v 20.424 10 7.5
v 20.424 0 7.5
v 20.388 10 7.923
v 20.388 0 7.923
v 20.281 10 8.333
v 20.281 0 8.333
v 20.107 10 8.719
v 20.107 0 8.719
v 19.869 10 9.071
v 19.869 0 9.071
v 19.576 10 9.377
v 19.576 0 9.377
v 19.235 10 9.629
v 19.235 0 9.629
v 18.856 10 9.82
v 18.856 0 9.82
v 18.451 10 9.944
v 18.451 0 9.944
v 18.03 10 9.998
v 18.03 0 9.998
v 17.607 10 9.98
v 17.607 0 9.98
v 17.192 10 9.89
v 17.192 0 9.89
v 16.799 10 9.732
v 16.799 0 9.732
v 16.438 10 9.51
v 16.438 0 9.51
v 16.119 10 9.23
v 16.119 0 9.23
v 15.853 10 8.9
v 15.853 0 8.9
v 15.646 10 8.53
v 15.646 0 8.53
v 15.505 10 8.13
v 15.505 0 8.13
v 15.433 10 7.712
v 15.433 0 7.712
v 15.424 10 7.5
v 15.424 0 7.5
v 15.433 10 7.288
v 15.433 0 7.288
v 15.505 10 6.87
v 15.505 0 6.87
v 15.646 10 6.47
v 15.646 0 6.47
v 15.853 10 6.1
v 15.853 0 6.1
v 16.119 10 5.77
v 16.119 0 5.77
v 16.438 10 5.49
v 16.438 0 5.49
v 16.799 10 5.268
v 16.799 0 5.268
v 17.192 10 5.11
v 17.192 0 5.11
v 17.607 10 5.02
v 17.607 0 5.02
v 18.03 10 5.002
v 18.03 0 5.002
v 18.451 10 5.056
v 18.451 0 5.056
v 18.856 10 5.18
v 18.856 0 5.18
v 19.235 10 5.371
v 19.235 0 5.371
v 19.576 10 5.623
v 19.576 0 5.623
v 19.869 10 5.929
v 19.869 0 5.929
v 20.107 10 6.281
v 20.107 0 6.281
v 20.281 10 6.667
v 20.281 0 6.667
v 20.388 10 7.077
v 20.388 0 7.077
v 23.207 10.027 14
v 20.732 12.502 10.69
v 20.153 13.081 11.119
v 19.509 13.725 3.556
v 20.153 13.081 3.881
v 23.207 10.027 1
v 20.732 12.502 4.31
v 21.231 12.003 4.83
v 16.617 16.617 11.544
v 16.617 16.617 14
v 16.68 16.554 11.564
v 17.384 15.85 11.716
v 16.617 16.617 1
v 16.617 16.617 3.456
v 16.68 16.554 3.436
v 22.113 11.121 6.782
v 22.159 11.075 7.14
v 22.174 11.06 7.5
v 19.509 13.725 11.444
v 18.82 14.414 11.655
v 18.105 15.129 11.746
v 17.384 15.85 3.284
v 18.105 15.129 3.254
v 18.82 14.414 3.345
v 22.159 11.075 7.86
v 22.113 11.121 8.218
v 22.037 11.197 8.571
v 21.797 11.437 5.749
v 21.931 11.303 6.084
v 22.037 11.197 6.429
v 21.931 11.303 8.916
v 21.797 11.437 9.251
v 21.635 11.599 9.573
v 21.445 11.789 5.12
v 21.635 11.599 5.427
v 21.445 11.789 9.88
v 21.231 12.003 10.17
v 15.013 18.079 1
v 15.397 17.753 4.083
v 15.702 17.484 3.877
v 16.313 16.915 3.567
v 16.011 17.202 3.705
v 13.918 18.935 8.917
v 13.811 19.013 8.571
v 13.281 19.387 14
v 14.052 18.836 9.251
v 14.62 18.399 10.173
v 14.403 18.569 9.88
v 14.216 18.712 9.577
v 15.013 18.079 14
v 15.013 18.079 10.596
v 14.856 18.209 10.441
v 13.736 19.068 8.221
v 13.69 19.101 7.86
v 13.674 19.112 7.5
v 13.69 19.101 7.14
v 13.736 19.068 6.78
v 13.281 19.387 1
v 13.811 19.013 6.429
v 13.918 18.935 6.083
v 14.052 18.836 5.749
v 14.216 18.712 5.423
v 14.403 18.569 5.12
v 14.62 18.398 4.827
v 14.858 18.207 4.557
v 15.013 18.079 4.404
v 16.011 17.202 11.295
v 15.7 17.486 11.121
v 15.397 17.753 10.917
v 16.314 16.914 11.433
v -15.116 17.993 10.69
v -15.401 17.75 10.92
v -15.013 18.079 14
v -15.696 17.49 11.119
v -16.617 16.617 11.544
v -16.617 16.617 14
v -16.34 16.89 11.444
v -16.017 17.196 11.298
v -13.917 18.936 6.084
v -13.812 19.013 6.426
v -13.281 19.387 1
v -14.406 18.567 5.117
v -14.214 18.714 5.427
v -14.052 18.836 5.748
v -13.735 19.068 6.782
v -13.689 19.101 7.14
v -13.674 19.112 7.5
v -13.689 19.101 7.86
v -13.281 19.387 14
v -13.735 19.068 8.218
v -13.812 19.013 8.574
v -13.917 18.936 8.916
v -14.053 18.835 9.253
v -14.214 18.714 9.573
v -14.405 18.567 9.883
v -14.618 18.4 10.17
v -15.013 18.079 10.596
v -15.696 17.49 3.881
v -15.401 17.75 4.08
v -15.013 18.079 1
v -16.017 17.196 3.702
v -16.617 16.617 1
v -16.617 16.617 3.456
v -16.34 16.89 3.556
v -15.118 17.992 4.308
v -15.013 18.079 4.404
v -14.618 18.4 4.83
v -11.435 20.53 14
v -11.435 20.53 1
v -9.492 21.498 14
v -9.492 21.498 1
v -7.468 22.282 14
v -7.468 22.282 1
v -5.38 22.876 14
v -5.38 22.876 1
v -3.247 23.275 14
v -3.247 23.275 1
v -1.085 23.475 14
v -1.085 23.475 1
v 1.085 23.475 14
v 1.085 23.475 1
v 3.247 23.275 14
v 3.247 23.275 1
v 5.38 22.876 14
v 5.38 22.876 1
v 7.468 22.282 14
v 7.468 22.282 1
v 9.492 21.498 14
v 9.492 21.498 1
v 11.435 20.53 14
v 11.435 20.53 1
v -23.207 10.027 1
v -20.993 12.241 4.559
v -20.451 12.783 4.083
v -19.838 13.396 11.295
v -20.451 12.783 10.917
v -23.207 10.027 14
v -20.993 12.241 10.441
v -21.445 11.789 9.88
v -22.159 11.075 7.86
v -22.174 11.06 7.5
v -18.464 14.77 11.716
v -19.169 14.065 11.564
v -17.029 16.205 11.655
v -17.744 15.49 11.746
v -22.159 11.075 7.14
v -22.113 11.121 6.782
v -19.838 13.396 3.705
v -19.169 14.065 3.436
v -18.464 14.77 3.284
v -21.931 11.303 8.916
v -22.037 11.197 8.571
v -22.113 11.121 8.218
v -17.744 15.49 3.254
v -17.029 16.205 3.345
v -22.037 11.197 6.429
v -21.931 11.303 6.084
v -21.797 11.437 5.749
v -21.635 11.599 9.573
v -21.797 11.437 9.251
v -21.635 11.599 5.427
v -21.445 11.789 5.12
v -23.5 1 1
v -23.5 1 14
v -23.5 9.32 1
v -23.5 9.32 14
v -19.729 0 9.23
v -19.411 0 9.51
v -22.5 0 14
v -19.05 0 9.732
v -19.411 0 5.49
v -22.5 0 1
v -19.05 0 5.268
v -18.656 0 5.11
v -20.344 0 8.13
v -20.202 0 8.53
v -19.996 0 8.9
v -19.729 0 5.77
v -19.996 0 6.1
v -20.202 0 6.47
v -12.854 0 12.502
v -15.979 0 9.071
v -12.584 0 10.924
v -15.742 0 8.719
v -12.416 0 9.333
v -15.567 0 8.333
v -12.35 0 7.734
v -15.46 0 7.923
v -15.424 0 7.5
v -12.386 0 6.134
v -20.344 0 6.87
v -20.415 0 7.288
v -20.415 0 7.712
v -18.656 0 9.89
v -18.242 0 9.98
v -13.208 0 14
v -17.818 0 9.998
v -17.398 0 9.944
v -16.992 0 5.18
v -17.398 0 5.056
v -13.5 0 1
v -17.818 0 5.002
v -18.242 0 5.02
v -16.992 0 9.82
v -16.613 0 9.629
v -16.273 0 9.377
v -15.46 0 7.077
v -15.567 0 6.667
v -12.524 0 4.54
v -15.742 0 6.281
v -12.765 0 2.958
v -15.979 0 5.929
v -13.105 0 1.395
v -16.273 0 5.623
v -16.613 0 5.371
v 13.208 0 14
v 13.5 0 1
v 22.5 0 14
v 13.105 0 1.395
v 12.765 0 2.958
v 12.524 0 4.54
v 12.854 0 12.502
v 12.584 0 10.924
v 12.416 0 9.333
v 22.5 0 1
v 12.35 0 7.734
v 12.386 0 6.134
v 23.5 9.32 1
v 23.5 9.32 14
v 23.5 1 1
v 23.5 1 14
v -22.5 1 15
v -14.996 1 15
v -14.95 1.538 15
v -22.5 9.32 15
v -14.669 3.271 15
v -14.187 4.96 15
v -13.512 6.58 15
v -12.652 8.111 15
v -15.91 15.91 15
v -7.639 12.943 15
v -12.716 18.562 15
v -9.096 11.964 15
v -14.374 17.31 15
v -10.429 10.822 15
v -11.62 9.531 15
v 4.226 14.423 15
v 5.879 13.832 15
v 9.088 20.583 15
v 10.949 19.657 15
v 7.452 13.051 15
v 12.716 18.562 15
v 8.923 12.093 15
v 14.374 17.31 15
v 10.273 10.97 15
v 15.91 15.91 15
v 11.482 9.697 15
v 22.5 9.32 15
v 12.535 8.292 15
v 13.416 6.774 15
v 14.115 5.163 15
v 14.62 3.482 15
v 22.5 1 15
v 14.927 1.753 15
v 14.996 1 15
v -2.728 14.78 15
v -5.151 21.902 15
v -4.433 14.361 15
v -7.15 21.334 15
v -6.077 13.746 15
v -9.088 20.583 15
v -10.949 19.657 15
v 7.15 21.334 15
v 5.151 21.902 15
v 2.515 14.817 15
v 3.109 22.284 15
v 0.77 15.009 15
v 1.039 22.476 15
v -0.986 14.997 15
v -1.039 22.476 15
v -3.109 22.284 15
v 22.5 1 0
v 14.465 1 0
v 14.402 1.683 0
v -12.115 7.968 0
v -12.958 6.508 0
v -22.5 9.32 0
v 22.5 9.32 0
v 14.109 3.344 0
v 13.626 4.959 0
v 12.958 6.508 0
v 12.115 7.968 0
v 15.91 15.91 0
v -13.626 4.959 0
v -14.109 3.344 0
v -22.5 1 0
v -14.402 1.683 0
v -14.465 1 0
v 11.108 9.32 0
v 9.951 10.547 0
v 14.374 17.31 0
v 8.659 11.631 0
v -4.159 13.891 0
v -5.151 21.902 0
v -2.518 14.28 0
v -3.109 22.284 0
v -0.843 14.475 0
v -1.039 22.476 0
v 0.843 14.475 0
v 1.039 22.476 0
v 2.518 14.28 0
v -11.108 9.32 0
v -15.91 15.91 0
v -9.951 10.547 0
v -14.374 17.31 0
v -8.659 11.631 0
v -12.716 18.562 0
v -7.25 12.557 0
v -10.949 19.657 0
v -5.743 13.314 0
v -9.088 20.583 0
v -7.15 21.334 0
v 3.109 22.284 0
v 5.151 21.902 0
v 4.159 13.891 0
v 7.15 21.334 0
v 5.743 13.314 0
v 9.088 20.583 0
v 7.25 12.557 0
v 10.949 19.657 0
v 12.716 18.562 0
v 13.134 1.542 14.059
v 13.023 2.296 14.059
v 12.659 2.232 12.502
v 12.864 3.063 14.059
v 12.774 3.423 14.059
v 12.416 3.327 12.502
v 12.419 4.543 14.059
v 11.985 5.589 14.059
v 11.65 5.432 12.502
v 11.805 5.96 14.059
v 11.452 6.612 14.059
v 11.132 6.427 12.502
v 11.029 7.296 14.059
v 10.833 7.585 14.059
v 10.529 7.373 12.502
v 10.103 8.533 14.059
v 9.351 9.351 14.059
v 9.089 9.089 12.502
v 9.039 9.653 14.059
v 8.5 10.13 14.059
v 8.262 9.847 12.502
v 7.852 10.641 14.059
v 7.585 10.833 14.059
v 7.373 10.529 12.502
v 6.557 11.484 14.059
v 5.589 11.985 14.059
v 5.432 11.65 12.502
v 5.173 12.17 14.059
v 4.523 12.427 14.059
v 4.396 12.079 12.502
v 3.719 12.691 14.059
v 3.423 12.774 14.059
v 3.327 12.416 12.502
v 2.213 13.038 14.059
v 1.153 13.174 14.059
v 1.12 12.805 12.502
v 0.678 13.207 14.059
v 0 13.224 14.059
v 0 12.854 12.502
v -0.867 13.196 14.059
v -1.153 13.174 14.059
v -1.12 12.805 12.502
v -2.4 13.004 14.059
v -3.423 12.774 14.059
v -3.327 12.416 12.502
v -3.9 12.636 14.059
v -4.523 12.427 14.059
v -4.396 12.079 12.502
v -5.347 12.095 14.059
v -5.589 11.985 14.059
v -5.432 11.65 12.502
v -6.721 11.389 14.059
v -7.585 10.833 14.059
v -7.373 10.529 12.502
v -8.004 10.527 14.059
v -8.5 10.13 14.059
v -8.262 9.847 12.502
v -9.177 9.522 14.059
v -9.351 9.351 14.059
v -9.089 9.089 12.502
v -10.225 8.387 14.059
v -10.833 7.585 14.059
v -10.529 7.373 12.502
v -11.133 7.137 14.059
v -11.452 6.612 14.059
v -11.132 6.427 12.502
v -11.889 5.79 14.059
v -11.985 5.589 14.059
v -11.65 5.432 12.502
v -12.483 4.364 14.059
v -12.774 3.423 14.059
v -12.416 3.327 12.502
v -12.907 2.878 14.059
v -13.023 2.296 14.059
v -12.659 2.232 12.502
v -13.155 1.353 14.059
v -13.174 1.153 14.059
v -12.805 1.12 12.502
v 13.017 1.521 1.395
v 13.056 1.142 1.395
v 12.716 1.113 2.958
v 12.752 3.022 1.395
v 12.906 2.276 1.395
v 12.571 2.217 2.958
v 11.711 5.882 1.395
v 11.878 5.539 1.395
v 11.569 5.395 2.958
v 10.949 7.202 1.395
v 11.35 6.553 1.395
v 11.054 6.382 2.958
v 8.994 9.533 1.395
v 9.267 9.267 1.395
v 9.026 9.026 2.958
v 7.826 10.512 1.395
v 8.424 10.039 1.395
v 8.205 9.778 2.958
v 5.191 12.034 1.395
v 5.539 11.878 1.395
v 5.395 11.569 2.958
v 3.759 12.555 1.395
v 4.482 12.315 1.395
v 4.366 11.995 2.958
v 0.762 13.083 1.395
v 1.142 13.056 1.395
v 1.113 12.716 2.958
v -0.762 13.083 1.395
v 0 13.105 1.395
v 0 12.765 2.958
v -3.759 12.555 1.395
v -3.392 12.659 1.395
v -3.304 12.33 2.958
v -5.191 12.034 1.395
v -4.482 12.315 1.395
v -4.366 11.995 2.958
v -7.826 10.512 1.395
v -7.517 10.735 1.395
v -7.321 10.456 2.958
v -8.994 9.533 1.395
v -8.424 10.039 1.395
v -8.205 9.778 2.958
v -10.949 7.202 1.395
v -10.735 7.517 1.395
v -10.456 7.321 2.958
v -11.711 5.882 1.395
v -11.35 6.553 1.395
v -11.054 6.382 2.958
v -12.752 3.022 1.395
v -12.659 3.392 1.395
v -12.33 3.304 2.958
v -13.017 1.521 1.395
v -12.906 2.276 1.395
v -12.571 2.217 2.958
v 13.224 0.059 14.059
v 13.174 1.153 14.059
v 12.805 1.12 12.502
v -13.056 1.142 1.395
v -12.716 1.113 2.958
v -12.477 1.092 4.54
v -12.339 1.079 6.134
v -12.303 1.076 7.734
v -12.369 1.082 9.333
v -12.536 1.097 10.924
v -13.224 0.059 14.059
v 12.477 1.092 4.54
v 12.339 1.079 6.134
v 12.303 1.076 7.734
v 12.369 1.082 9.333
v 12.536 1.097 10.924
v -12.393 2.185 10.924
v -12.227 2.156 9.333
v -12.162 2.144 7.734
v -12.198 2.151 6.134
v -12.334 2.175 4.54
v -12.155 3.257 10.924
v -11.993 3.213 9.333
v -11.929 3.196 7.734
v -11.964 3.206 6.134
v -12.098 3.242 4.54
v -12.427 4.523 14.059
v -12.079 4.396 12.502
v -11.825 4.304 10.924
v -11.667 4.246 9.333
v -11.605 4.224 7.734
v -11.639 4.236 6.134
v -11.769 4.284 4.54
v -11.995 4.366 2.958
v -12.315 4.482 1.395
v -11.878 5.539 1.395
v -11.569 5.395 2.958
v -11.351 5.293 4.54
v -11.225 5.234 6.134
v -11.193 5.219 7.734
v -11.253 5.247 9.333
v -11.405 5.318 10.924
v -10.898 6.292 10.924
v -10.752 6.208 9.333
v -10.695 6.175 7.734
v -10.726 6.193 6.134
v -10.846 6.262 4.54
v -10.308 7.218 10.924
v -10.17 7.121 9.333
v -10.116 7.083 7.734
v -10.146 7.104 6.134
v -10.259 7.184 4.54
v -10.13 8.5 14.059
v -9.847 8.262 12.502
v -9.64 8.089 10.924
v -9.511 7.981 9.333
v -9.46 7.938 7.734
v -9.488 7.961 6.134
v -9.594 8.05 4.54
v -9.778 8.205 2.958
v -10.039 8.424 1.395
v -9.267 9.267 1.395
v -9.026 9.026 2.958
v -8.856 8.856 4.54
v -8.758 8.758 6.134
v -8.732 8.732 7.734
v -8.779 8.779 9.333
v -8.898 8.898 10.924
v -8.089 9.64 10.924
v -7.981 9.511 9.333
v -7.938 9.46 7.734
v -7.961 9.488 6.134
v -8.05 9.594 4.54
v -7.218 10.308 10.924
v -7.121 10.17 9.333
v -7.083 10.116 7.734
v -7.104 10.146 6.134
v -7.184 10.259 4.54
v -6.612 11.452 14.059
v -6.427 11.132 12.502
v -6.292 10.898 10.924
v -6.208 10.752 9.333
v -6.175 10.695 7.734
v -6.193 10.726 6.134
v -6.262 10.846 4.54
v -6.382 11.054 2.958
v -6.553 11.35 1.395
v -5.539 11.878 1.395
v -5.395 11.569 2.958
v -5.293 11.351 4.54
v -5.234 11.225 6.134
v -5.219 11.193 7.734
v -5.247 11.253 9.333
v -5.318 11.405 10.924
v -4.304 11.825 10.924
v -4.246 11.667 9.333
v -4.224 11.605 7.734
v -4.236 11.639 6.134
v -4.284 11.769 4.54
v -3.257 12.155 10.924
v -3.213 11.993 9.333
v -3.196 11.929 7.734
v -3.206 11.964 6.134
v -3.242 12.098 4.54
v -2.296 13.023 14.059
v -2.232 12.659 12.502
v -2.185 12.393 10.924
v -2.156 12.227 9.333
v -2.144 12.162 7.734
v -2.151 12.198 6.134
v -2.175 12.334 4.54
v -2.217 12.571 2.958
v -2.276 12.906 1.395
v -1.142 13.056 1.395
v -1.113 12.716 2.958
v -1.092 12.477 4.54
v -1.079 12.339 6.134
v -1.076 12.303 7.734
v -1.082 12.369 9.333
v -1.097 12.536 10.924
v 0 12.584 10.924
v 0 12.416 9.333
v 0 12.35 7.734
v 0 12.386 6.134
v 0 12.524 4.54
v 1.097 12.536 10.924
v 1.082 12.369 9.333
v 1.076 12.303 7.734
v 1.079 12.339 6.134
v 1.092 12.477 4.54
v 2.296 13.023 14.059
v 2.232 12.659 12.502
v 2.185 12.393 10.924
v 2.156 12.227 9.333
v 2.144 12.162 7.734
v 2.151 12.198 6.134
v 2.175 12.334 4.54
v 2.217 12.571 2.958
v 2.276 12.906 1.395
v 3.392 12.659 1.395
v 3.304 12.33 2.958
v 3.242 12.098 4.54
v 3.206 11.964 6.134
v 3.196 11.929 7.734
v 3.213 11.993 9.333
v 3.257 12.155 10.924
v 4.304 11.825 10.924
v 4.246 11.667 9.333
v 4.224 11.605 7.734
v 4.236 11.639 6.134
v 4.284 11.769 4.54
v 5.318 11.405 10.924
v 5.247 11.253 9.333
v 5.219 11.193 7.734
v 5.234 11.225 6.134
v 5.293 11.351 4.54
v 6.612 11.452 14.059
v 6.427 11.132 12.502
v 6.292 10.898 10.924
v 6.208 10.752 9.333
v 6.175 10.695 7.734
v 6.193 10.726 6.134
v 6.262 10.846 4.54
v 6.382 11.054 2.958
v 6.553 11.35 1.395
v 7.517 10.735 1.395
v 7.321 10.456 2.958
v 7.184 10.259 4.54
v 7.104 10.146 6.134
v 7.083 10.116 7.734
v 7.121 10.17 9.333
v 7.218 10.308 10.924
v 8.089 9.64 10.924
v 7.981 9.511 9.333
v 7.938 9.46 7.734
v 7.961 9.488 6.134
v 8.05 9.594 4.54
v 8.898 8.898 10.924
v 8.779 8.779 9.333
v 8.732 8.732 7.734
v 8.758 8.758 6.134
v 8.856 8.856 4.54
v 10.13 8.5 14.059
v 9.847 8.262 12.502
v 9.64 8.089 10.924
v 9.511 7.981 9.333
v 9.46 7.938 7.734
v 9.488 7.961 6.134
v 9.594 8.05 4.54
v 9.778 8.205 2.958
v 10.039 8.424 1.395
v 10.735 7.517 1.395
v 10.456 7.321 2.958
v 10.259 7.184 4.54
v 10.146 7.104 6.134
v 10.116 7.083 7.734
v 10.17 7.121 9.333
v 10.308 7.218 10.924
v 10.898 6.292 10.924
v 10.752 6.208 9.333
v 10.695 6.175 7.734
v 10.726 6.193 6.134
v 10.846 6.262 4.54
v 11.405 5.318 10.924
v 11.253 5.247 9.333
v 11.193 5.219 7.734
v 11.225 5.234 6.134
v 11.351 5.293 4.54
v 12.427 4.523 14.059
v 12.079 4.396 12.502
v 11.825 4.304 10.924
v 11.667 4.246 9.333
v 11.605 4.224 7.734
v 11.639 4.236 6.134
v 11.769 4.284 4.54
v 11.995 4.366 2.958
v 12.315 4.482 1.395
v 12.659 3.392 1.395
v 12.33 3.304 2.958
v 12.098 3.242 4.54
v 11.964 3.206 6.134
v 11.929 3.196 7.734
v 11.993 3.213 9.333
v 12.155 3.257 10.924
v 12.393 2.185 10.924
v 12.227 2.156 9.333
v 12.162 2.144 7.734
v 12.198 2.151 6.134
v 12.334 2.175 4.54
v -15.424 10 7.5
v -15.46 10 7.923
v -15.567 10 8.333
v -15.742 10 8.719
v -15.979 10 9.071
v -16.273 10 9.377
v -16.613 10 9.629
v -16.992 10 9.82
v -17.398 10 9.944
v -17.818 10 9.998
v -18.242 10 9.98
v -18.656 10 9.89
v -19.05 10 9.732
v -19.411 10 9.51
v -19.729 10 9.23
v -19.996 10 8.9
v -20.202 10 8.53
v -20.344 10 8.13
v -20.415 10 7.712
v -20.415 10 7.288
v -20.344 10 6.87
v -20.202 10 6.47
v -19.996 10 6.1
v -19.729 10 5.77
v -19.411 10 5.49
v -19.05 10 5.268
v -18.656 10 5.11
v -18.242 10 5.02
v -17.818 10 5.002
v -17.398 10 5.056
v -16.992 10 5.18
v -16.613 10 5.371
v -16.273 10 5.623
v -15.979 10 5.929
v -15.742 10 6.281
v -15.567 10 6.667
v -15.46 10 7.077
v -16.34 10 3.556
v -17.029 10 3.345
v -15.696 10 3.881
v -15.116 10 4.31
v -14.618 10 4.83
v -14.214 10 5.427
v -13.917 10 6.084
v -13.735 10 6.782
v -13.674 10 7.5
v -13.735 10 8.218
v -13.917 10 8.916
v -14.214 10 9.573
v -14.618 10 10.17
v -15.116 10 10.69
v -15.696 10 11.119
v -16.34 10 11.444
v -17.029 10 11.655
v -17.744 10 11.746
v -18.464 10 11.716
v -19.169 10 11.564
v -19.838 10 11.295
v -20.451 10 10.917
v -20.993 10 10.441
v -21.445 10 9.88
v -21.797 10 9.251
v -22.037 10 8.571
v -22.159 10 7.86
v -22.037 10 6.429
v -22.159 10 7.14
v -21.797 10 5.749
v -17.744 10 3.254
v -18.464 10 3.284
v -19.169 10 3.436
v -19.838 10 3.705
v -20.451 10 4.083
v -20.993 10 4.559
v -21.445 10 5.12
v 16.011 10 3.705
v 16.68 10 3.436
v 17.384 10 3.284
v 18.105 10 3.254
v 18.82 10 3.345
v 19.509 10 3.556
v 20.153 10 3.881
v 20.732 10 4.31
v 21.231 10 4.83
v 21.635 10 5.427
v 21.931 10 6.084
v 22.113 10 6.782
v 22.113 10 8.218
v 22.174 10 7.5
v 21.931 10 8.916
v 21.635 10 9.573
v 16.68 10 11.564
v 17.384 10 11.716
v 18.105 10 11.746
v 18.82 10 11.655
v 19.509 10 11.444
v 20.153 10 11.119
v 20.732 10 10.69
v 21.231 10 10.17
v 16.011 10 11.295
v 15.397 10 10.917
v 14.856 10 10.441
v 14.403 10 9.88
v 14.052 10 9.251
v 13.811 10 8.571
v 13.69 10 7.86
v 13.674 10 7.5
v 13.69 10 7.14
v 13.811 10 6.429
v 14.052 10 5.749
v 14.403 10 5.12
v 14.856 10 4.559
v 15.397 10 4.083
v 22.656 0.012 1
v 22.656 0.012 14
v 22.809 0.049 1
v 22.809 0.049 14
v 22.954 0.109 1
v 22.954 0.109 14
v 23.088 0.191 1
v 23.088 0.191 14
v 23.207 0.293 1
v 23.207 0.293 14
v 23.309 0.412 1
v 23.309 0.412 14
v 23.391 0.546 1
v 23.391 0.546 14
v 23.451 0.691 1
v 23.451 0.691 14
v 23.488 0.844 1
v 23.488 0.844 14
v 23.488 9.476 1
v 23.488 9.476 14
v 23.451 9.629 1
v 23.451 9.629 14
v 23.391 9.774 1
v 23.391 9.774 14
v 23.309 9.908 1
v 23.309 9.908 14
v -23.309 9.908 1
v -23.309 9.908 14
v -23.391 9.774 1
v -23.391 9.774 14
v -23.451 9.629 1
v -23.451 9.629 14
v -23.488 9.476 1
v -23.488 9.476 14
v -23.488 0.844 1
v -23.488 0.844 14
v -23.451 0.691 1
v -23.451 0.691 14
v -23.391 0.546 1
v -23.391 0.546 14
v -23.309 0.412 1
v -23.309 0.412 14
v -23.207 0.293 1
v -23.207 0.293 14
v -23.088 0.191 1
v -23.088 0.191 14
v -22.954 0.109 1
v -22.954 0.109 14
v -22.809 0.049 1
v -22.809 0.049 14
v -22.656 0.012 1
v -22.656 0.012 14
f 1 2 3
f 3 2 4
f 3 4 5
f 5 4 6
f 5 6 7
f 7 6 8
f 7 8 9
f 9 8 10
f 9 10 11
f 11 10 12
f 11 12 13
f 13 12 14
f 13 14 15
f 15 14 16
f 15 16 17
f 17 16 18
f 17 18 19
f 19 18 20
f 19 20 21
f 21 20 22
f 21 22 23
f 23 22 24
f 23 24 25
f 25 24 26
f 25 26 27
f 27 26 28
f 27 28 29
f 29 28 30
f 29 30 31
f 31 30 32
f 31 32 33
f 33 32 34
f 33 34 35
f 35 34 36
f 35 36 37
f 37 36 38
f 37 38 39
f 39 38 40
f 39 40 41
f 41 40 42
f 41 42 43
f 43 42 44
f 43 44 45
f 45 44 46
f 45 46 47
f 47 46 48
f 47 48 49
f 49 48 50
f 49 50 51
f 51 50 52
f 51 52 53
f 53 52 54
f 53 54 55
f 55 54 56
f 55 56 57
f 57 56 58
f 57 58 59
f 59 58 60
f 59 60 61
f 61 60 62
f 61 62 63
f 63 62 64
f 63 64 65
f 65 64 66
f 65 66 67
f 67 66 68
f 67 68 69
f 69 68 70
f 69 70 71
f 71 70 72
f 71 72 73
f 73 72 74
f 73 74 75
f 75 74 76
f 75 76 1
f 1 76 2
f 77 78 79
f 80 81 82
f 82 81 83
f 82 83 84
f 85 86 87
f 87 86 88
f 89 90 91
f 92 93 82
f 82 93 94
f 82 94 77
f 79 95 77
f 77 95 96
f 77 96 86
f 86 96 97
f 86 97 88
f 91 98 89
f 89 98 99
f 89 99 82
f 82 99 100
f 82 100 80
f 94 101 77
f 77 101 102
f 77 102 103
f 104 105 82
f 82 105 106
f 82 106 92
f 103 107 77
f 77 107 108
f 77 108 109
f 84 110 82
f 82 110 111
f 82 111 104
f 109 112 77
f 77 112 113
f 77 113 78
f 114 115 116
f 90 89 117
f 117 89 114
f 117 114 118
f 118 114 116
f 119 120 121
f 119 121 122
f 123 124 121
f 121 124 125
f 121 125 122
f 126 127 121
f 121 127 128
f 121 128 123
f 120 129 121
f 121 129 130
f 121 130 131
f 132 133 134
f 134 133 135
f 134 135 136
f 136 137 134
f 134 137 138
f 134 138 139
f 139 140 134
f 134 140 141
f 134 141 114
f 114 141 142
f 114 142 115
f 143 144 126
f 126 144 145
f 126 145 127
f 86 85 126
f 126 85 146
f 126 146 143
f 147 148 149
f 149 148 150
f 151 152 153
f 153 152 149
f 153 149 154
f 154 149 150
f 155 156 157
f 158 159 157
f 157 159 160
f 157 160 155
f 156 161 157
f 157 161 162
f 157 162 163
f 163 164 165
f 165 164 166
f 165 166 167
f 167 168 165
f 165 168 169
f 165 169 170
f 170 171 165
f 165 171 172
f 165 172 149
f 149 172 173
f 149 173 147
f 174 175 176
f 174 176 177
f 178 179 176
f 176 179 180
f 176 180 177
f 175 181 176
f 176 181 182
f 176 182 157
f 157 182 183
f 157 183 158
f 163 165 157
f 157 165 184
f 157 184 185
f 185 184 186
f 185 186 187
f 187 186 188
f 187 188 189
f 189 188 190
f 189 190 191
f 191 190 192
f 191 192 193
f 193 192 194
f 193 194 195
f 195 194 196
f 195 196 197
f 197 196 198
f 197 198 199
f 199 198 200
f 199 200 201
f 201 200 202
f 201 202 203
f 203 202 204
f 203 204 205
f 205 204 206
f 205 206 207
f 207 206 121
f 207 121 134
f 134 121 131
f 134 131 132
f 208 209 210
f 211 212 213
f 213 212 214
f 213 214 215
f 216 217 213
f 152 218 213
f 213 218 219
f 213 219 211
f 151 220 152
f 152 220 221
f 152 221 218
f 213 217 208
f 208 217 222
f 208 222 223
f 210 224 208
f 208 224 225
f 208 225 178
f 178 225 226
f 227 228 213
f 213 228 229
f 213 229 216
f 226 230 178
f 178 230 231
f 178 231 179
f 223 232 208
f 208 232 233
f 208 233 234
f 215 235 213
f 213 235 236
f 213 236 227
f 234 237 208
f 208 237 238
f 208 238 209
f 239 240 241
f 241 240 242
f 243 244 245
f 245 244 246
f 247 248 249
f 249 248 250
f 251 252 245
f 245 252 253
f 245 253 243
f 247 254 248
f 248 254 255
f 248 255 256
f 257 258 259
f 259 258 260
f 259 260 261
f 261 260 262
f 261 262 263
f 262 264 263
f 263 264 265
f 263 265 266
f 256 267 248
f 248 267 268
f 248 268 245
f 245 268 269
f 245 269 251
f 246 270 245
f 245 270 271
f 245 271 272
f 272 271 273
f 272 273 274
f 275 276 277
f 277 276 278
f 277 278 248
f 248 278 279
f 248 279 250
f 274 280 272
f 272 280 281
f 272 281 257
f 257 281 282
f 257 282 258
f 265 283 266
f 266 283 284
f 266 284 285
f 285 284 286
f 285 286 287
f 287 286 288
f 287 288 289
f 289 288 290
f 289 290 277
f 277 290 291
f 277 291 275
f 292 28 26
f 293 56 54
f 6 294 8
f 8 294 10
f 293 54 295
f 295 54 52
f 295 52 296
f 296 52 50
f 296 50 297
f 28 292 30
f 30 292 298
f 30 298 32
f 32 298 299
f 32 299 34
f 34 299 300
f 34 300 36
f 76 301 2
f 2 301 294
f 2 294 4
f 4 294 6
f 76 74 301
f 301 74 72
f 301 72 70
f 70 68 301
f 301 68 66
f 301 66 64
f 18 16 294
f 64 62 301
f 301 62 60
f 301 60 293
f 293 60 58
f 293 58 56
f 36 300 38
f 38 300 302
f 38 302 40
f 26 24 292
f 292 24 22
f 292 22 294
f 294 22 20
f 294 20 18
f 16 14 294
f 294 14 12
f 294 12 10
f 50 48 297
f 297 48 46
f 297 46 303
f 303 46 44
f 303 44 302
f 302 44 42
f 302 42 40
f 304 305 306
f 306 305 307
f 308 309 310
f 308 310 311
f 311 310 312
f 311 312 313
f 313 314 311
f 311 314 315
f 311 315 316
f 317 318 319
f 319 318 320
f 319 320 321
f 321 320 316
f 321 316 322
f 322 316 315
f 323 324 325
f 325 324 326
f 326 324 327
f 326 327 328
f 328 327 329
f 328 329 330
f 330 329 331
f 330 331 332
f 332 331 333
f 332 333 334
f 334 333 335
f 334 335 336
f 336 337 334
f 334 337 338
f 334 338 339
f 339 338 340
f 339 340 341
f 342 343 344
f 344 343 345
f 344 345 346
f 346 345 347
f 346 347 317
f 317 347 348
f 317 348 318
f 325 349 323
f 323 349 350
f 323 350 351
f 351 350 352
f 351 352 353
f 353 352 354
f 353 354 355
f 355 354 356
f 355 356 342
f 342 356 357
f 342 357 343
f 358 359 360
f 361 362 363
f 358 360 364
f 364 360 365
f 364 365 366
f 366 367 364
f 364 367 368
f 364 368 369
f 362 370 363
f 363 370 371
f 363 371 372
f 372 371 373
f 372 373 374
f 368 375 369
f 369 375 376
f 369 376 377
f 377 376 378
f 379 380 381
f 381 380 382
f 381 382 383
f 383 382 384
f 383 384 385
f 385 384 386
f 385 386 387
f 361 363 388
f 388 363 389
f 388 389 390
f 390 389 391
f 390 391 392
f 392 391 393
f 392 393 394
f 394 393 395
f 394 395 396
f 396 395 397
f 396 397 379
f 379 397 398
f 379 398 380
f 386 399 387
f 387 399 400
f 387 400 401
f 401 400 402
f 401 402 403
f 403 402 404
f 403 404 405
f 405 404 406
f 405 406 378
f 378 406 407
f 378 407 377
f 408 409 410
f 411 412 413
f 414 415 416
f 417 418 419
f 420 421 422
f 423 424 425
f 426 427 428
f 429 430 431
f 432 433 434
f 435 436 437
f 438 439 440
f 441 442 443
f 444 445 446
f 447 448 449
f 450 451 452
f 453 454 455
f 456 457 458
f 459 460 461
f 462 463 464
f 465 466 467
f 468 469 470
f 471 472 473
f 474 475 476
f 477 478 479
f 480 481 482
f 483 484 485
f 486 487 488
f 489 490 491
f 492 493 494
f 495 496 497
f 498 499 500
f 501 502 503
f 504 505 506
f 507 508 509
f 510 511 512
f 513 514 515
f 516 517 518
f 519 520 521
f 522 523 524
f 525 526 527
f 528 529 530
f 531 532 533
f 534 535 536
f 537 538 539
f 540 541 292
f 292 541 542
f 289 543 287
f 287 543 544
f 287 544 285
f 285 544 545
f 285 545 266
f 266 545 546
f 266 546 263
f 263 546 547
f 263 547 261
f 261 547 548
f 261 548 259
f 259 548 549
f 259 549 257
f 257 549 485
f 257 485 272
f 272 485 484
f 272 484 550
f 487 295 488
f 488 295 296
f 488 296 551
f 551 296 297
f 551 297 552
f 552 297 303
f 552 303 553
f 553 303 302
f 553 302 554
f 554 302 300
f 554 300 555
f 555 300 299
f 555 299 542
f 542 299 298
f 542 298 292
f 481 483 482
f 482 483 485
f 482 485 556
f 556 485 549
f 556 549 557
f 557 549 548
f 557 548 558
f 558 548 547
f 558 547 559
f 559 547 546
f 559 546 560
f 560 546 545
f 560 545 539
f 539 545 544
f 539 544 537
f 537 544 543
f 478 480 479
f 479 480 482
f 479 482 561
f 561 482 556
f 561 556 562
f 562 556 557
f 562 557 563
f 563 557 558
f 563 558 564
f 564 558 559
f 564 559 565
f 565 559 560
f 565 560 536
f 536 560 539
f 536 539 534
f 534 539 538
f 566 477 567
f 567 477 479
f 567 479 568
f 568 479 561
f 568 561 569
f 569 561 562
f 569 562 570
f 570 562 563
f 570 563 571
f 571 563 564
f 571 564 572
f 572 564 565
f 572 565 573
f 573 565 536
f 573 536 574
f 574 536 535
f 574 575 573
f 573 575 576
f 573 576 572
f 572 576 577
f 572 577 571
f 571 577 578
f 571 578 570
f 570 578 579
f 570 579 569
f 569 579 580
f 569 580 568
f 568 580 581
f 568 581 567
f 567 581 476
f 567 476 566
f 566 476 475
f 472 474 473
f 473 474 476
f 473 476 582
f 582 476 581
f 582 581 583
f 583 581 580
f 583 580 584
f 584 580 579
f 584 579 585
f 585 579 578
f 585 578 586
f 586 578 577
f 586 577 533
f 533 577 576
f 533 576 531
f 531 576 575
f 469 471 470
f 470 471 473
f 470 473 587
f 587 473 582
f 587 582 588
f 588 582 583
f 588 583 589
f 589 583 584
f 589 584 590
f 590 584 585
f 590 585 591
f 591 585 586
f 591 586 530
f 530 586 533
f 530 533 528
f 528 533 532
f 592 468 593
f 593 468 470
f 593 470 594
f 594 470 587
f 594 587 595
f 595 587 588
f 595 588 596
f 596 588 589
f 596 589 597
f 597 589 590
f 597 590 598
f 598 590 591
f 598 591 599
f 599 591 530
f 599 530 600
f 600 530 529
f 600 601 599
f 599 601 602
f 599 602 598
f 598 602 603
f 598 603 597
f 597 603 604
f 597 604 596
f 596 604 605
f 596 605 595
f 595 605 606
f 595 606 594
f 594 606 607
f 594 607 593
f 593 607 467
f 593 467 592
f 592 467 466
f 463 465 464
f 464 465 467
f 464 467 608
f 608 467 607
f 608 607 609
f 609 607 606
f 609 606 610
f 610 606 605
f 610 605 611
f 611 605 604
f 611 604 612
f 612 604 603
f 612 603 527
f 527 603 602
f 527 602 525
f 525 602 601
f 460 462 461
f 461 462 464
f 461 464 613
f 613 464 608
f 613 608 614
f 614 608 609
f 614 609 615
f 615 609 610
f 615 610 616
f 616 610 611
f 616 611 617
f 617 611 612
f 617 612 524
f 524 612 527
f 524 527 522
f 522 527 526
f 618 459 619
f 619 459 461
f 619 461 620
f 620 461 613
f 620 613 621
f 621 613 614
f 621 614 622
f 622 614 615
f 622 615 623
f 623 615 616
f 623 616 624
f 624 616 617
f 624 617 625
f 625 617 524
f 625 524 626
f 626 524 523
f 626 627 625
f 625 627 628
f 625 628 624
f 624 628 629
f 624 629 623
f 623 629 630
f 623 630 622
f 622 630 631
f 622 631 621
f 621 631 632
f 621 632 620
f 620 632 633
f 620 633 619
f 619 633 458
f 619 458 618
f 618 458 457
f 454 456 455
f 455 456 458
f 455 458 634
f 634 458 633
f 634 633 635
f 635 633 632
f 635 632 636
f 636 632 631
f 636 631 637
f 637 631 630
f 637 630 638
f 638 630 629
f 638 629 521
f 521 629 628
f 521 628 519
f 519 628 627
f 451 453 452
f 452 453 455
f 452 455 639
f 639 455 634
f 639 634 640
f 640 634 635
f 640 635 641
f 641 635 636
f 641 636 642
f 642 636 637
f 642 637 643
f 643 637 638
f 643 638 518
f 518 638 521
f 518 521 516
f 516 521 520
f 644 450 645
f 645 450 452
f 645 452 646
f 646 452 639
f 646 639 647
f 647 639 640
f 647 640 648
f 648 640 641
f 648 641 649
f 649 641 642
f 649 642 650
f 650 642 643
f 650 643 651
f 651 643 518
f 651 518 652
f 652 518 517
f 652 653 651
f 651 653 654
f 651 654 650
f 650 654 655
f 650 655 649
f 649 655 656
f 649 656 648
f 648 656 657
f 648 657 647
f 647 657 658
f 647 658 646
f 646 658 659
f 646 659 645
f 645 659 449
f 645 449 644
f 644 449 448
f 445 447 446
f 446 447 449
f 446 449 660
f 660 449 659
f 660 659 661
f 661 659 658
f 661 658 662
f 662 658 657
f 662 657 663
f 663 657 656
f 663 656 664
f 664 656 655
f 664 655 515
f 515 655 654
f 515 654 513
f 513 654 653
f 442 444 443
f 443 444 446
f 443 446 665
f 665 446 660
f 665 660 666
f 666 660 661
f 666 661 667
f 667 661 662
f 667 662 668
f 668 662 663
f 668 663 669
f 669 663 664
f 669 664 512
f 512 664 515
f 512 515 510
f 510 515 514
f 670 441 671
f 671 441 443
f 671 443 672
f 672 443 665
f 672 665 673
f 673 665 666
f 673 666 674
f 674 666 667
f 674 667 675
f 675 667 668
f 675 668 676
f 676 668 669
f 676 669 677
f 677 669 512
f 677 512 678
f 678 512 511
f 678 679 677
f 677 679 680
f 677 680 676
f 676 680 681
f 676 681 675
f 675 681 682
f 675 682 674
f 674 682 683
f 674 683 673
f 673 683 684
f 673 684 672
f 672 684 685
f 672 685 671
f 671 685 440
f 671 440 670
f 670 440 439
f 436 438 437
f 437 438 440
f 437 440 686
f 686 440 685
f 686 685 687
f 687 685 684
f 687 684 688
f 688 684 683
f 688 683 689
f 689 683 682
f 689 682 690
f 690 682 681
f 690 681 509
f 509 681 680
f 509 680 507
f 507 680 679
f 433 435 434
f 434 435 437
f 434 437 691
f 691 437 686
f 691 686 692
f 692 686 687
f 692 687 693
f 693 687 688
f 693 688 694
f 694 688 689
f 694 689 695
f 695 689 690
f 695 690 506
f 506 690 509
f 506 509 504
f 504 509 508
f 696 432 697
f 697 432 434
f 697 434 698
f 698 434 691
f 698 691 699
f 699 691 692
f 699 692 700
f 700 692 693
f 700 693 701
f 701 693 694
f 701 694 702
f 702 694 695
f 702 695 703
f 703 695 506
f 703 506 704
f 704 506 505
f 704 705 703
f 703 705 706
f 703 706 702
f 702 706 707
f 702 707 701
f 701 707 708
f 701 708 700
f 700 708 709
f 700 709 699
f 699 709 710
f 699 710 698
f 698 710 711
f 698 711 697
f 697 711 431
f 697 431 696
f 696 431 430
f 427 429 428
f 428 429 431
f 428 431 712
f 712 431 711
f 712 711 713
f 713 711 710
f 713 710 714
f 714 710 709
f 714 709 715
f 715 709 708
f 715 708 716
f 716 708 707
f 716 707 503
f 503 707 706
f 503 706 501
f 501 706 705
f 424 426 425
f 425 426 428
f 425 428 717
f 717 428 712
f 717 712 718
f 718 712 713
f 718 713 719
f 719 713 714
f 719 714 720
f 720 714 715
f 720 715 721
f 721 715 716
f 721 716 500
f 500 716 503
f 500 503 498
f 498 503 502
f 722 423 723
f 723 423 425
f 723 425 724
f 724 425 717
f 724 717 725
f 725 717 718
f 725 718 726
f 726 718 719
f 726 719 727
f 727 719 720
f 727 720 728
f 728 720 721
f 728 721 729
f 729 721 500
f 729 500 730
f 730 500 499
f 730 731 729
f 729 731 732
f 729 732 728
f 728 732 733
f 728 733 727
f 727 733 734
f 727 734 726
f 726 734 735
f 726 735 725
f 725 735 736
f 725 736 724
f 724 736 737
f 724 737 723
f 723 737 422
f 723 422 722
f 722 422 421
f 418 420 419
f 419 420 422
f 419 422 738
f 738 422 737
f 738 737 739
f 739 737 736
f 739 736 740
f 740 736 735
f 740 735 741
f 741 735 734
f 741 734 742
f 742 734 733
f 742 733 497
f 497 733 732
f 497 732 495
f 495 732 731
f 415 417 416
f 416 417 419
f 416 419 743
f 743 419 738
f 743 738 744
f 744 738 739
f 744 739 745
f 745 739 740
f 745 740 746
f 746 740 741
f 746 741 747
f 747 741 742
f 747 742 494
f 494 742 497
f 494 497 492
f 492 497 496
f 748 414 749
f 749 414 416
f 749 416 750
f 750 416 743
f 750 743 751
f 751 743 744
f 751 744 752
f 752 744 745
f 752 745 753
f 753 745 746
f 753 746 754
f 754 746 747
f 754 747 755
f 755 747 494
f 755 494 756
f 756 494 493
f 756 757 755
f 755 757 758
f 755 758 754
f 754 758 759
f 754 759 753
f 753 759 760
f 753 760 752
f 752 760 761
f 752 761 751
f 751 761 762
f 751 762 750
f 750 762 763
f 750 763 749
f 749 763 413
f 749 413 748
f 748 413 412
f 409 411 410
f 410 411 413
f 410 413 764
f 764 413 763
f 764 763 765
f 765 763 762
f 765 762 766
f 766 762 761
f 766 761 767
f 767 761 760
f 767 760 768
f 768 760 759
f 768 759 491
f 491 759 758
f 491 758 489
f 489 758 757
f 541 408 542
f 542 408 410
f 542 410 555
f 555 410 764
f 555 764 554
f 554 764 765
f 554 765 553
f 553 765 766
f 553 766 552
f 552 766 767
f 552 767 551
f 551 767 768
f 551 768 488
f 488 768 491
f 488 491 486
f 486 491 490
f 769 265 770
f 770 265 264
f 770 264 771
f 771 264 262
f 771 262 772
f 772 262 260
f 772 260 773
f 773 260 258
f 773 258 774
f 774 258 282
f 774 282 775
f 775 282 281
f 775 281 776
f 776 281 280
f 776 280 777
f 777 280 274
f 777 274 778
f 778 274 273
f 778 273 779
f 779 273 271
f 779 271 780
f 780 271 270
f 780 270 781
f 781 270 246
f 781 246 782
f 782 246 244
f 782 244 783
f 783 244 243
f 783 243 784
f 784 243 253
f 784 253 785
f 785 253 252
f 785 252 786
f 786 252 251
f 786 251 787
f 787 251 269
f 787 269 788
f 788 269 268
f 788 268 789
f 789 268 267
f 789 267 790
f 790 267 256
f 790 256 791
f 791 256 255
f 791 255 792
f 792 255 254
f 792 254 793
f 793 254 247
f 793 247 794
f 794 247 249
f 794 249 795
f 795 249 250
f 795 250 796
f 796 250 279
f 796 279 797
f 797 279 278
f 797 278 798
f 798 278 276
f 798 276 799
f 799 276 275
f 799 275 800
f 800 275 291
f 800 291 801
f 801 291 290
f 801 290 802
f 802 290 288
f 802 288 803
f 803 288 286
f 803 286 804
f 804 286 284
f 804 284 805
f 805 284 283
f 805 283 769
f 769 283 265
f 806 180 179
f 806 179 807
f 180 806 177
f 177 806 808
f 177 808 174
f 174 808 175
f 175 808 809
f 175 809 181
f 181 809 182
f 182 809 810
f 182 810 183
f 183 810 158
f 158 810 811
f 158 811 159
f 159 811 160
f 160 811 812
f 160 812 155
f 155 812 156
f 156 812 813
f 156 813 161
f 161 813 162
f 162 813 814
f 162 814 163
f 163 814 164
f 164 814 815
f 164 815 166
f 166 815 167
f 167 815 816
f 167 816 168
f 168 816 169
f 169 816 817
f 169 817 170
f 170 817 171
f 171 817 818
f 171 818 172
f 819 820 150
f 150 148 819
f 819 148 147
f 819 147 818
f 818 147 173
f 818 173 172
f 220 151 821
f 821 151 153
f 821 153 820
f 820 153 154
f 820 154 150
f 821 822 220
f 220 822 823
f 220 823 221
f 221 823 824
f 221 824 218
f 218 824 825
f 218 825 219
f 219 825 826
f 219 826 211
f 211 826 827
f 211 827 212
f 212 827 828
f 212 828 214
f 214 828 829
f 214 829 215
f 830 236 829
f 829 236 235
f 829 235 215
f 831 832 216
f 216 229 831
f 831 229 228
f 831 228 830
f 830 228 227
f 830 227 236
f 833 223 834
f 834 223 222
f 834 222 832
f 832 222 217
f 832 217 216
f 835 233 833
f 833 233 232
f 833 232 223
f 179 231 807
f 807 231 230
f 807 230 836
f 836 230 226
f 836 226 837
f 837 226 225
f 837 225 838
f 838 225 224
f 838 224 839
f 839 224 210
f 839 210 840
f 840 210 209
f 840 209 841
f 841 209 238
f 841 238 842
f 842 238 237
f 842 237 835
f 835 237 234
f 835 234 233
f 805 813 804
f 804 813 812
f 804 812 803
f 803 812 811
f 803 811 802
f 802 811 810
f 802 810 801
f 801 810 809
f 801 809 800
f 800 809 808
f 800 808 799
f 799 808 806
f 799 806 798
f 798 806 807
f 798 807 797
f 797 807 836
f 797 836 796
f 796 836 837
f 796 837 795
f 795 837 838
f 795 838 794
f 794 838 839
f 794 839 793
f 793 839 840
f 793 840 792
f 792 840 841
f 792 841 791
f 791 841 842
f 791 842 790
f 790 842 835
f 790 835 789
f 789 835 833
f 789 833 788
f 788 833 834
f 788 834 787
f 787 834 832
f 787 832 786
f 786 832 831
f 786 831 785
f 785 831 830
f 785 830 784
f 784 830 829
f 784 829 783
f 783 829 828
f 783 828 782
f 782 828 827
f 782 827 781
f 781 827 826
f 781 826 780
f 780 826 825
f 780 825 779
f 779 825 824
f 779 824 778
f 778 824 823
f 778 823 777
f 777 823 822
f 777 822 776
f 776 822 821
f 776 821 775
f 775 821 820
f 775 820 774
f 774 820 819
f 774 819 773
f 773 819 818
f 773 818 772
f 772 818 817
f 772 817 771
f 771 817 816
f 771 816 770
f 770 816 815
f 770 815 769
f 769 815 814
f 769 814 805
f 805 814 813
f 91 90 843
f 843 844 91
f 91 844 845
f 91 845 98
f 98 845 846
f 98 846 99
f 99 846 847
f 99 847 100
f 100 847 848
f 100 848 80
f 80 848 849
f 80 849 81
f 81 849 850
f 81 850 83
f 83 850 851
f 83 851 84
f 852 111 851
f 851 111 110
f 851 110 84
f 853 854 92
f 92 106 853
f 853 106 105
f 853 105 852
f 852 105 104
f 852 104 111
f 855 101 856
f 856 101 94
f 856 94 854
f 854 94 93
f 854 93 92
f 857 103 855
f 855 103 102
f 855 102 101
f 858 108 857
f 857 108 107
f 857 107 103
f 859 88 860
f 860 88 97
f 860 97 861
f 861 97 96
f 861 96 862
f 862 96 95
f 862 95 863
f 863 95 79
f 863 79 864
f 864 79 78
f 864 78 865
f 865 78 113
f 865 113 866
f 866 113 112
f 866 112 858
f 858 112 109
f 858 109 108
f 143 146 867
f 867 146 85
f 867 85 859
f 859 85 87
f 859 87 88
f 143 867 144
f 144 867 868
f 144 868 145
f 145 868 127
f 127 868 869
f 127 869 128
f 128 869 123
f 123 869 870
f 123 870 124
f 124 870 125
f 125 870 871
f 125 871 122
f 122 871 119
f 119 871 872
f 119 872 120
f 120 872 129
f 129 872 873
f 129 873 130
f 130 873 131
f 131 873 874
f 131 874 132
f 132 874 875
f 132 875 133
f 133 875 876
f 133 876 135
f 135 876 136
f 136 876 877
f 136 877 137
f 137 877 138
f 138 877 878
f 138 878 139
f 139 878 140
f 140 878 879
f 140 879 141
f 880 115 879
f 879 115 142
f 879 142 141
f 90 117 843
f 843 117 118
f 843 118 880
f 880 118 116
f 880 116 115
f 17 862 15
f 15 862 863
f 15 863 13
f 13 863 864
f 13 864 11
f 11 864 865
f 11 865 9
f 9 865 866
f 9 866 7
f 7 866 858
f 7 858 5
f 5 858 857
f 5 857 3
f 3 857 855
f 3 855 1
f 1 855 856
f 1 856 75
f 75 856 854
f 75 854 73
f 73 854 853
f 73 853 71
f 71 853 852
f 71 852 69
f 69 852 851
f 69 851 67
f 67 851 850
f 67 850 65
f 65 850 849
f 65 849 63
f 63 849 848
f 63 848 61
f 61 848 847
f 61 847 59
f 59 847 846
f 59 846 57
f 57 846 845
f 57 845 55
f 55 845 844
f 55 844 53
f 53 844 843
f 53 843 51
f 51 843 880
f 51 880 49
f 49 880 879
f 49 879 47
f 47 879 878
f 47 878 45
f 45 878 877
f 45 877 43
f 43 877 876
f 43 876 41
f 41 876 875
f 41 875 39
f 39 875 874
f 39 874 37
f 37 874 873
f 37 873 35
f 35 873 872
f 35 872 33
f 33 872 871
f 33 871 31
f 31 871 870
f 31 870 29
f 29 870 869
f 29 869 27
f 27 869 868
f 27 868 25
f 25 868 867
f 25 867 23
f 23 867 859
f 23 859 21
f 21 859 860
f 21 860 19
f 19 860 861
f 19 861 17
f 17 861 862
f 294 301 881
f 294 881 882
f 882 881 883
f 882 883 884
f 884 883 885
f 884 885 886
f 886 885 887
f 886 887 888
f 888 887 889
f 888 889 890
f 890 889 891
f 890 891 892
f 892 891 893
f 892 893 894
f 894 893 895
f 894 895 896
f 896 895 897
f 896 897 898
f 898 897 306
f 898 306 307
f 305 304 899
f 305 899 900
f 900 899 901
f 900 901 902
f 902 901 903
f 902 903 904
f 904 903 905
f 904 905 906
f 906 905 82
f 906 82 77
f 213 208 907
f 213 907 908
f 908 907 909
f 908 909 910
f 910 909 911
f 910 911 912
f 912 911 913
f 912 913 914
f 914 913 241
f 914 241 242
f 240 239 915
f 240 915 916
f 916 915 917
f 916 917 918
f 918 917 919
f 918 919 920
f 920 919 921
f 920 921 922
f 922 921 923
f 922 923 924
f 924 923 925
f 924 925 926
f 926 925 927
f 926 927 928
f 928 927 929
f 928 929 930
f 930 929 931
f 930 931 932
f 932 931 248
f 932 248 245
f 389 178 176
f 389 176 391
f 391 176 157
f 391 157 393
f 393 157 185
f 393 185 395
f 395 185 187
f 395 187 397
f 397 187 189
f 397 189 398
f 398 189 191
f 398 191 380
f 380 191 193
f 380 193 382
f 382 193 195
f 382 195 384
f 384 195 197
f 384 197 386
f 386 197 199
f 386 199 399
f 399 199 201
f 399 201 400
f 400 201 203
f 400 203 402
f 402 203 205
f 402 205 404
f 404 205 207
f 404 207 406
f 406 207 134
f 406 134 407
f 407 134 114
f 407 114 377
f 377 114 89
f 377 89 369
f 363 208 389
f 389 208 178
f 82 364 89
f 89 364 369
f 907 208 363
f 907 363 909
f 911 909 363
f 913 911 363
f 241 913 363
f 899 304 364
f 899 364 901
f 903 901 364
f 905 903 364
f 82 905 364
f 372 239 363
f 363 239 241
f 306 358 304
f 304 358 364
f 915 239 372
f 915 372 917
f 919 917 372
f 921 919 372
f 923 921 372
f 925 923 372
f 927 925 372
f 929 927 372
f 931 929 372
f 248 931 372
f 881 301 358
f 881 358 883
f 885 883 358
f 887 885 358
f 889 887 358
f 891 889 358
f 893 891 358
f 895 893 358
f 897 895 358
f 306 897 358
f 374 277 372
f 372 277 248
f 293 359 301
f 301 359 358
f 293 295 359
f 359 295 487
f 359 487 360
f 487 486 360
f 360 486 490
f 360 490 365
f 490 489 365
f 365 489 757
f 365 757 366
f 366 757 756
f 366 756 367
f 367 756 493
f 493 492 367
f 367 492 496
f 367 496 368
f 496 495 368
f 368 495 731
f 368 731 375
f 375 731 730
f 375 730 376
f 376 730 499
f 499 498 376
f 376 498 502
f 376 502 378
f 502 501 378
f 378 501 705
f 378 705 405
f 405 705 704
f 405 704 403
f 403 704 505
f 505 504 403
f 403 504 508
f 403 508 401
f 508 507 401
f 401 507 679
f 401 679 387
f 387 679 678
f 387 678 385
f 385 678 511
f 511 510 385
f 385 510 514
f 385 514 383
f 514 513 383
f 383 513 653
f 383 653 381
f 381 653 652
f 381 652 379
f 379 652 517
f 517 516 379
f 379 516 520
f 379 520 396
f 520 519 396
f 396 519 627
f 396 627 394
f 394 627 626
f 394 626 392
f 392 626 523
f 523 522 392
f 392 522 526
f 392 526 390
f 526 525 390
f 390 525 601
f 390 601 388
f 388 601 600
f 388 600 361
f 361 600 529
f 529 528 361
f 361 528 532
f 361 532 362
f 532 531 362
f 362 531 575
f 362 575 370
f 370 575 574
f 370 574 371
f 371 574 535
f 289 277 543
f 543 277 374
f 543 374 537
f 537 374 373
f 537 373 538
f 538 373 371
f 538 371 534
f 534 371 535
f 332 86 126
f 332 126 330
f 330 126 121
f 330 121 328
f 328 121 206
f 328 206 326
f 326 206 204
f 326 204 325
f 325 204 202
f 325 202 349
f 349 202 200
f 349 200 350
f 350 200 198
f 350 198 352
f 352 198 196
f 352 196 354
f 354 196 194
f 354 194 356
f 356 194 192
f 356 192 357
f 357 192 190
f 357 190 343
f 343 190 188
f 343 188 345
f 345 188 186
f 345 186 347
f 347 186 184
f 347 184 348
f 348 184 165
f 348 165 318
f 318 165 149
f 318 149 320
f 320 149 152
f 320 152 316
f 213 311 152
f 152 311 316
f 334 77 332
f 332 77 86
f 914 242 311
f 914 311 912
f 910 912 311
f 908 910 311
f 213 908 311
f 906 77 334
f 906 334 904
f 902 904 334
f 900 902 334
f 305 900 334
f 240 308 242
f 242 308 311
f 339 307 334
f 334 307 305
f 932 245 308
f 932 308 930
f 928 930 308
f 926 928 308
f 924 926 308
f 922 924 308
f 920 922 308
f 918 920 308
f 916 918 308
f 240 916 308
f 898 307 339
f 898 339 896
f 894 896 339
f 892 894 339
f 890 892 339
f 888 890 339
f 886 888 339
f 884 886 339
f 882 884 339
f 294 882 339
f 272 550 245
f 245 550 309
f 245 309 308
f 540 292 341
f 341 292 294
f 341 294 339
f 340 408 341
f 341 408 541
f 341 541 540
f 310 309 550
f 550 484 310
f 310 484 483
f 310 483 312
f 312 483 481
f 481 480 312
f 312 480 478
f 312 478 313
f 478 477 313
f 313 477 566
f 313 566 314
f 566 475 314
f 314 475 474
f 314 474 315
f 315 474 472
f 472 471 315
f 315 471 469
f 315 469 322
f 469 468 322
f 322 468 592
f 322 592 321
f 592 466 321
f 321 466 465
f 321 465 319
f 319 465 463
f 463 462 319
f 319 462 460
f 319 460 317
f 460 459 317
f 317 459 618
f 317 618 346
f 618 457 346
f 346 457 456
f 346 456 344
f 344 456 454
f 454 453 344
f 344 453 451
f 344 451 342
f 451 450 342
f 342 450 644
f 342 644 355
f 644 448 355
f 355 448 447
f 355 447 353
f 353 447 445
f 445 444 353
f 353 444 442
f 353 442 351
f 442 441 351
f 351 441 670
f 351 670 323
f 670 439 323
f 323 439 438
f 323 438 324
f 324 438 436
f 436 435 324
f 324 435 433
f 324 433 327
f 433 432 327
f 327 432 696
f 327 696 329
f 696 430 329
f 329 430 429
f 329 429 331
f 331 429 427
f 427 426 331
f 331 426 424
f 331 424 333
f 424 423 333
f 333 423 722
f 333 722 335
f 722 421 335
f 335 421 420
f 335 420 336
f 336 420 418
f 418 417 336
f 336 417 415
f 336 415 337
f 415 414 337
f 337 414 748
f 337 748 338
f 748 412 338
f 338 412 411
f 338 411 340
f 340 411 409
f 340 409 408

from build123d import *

# Parameters (mm, degrees)
BOSS_EXTRUDE1_DEPTH = 15
REVOLVE1_ANGLE      = 180
SKETCH3_R           = 2.5
CUT_EXTRUDE1_DEPTH  = 37.462309307
CUT_EXTRUDE2_START  = -10
SKETCH4_R           = 4.25
CUT_EXTRUDE2_DEPTH  = 27.462309413
FILLET1_R           = 1
CHAMFER1_SIZE       = 1.529194148
CHAMFER1_SIZE_2     = 1


with BuildPart() as part:
    # Sketch1 → Boss-Extrude1 (new body)
    with BuildSketch(Plane.XY):
        with BuildLine():
            Line((-13.5, 0), (-23.5, 0))
            Line((-23.5, 0), (-23.5, 9.734018716))
            Line((-23.5, 9.734018716), (-16.617009358, 16.617009358))
            ThreePointArc((-16.617009358, 16.617009358), (0, 23.5), (16.617009358, 16.617009358))
            Line((16.617009358, 16.617009358), (23.5, 9.734018716))
            Line((23.5, 9.734018716), (23.5, 0))
            Line((23.5, 0), (13.5, 0))
            ThreePointArc((13.5, 0), (0, 13.5), (-13.5, 0))
        make_face()
    extrude(amount=BOSS_EXTRUDE1_DEPTH)

    # Sketch2 → Revolve1 (revolve)
    with BuildSketch(Plane.XZ):
        with BuildLine():
            Line((-13.5, 15), (-13.5, 0))
            ThreePointArc((-13.5, 0), (-12.348480035, 7.5), (-13.5, 15))
        make_face()
    revolve(axis=Axis((0, 0, 7.5), (0, 0, -1)), revolution_arc=REVOLVE1_ANGLE)

    # Sketch3 → Cut-Extrude1 (cut, through all)
    with BuildSketch(Plane.XZ):
        with Locations((-17.924240018, 7.5)):
            Circle(SKETCH3_R)
        with Locations(Location((17.924240018, 7.5, 0), (0, 0, 121.526459575))):
            Circle(SKETCH3_R)
    extrude(amount=-CUT_EXTRUDE1_DEPTH, mode=Mode.SUBTRACT)

    # Sketch4 → Cut-Extrude2 (cut, through all)
    with BuildSketch(Plane.XZ.offset(CUT_EXTRUDE2_START)):
        with Locations((-17.924240018, 7.5)):
            Circle(SKETCH4_R)
        with Locations(Location((17.924240018, 7.5, 0), (0, 0, 252.086328454))):
            Circle(SKETCH4_R)
    extrude(amount=-CUT_EXTRUDE2_DEPTH, mode=Mode.SUBTRACT)

    # Fillet1
    fillet1_edges = [part.edges().sort_by_distance(p)[0] for p in [
        (23.5, 9.734018716, 7.5),
        (23.5, 0, 7.5),
        (-23.5, 0, 7.5),
        (-23.5, 9.734018716, 7.5),
    ]]
    fillet(fillet1_edges, radius=FILLET1_R)

    # Chamfer1
    # the kernel refuses this chamfer: 1.529194148, 1 mm, written as the material it takes off along each edge
    with BuildSketch(Plane(origin=(0, 0, 15), x_dir=(0.9571659368895994, -0.2895399268810014, 0), z_dir=(-0.2895399268810014, -0.9571659368895994, 0))) as chamfer1_piece_1:
        with BuildLine():
            Line((13.224132078, -0.941354132), (13.5 + CHAMFER1_SIZE, 0))
            Line((13.5 + CHAMFER1_SIZE, 0), (13.5, 0))
            ThreePointArc((13.5, 0), (13.351499892, -0.489654504), (13.224132078, -0.941354132))
        make_face()
    revolve(axis=Axis((0, 0, 15), (0, 0, 1)), revolution_arc=213.660828251, mode=Mode.SUBTRACT)
    with BuildSketch(Plane(origin=(0, 0, 0), x_dir=(0.9613944909393555, -0.27517382286739694, 0), z_dir=(-0.27517382286739694, -0.9613944909393555, 0))) as chamfer1_piece_2:
        with BuildLine():
            Line((13.5 + CHAMFER1_SIZE_2, 0), (13.105478256, 1.394521744))
            ThreePointArc((13.105478256, 1.394521744), (13.285379501, 0.720089037), (13.5, 0))
            Line((13.5, 0), (13.5 + CHAMFER1_SIZE_2, 0))
        make_face()
    revolve(axis=Axis((0, 0, 0), (0, 0, 1)), revolution_arc=211.944746271, mode=Mode.SUBTRACT)
    # the kernel refuses this chamfer: 1.529194148, 1 mm, written as the material it takes off along each edge
    with BuildSketch(Plane(origin=(-23.207106781, 10.026911935, 0), x_dir=(0.7071067811865477, -0.7071067811865475, 0), z_dir=(0.7071067811865475, 0.7071067811865477, 0)), Plane(origin=(16.617009358, 16.617009358, 0), x_dir=(-0.7071067811865477, -0.7071067811865475, 0), z_dir=(0.7071067811865475, -0.7071067811865477, 0))) as chamfer1_2_piece_1:
        Polygon((CHAMFER1_SIZE_2, 0), (0, -CHAMFER1_SIZE_2), (0, 0), align=None)
    extrude(amount=9.319805153, mode=Mode.SUBTRACT)
    with BuildSketch(Plane(origin=(0, 0, 0), x_dir=(-0.7071067811865478, 0.7071067811865472, 0), z_dir=(-0.7071067811865472, -0.7071067811865478, 0))) as chamfer1_2_piece_2:
        Polygon((23.5 - CHAMFER1_SIZE_2, 0), (23.5, -CHAMFER1_SIZE_2), (23.5, 0), align=None)
    revolve(axis=Axis((0, 0, 0), (0, 0, -1)), revolution_arc=90, mode=Mode.SUBTRACT)
    with BuildSketch(Plane(origin=(-23.207106781, 10.026911935, 15), x_dir=(0.7071067811865477, -0.7071067811865475, 0), z_dir=(0.7071067811865475, 0.7071067811865477, 0)), Plane(origin=(16.617009358, 16.617009358, 15), x_dir=(-0.7071067811865477, -0.7071067811865475, 0), z_dir=(0.7071067811865475, -0.7071067811865477, 0))) as chamfer1_2_piece_3:
        Polygon((CHAMFER1_SIZE_2, 0), (0, CHAMFER1_SIZE_2), (0, 0), align=None)
    extrude(amount=9.319805153, mode=Mode.SUBTRACT)
    with BuildSketch(Plane(origin=(22.5, 0, 15), x_dir=(0, 1, 0), z_dir=(-1, 0, 0))) as chamfer1_2_piece_4:
        Polygon((CHAMFER1_SIZE_2, 0), (0, CHAMFER1_SIZE_2), (0, 0), align=None)
    extrude(amount=10.04248884, mode=Mode.SUBTRACT)
    with BuildSketch(Plane(origin=(23.5, 9.319805153, 0), x_dir=(-1, 0, 0), z_dir=(0, -1, 0)), Plane(origin=(-23.5, 1, 0), x_dir=(1, 0, 0), z_dir=(0, 1, 0))) as chamfer1_2_piece_5:
        Polygon((CHAMFER1_SIZE_2, 0), (0, -CHAMFER1_SIZE_2), (0, 0), align=None)
    extrude(amount=8.319805153, mode=Mode.SUBTRACT)
    with BuildSketch(Plane(origin=(23.5, 9.319805153, 15), x_dir=(-1, 0, 0), z_dir=(0, -1, 0)), Plane(origin=(-23.5, 1, 15), x_dir=(1, 0, 0), z_dir=(0, 1, 0))) as chamfer1_2_piece_6:
        Polygon((CHAMFER1_SIZE_2, 0), (0, CHAMFER1_SIZE_2), (0, 0), align=None)
    extrude(amount=8.319805153, mode=Mode.SUBTRACT)
    with BuildSketch(Plane(origin=(-11.928317012, 0, 0), x_dir=(0, 0, 1), z_dir=(-1, 0, 0))) as chamfer1_2_piece_7:
        Polygon((CHAMFER1_SIZE_2, 0), (0, CHAMFER1_SIZE_2), (0, 0), align=None)
    extrude(amount=10.571682988, mode=Mode.SUBTRACT)
    with BuildSketch(Plane(origin=(-22.5, 1, 0), x_dir=(0, -1, 0), z_dir=(1, 0, 0))) as chamfer1_2_piece_8:
        Polygon((1 - CHAMFER1_SIZE_2, 0), (1, -CHAMFER1_SIZE_2), (1, 0), align=None)
    revolve(axis=Axis((-22.5, 1, 0), (0, 0, -1)), revolution_arc=90, mode=Mode.SUBTRACT)
    with BuildSketch(Plane(origin=(-22.5, 9.319805153, 0), x_dir=(-1, 0, 0), z_dir=(0, -1, 0))) as chamfer1_2_piece_9:
        Polygon((1 - CHAMFER1_SIZE_2, 0), (1, -CHAMFER1_SIZE_2), (1, 0), align=None)
    revolve(axis=Axis((-22.5, 9.319805153, 0), (0, 0, -1)), revolution_arc=45, mode=Mode.SUBTRACT)
    with BuildSketch(Plane(origin=(22.5, 9.319805153, 0), x_dir=(0.7071067811865458, 0.7071067811865493, 0), z_dir=(-0.7071067811865493, 0.7071067811865458, 0))) as chamfer1_2_piece_10:
        Polygon((1 - CHAMFER1_SIZE_2, 0), (1, -CHAMFER1_SIZE_2), (1, 0), align=None)
    revolve(axis=Axis((22.5, 9.319805153, 0), (0, 0, -1)), revolution_arc=45, mode=Mode.SUBTRACT)
    with BuildSketch(Plane(origin=(22.5, 1, 0), x_dir=(1, 0, 0), z_dir=(0, 1, 0))) as chamfer1_2_piece_11:
        Polygon((1 - CHAMFER1_SIZE_2, 0), (1, -CHAMFER1_SIZE_2), (1, 0), align=None)
    revolve(axis=Axis((22.5, 1, 0), (0, 0, -1)), revolution_arc=90, mode=Mode.SUBTRACT)
    with BuildSketch(Plane(origin=(-12.45751116, 0, 15), x_dir=(0, 0, -1), z_dir=(-1, 0, 0))) as chamfer1_2_piece_12:
        Polygon((CHAMFER1_SIZE_2, 0), (0, -CHAMFER1_SIZE_2), (0, 0), align=None)
    extrude(amount=10.04248884, mode=Mode.SUBTRACT)
    with BuildSketch(Plane(origin=(-22.5, 1, 15), x_dir=(0, -1, 0), z_dir=(1, 0, 0))) as chamfer1_2_piece_13:
        Polygon((1, CHAMFER1_SIZE_2), (1 - CHAMFER1_SIZE_2, 0), (1, 0), align=None)
    revolve(axis=Axis((-22.5, 1, 15), (0, 0, -1)), revolution_arc=90, mode=Mode.SUBTRACT)
    with BuildSketch(Plane(origin=(-22.5, 9.319805153, 15), x_dir=(-1, 0, 0), z_dir=(0, -1, 0))) as chamfer1_2_piece_14:
        Polygon((1 - CHAMFER1_SIZE_2, 0), (1, CHAMFER1_SIZE_2), (1, 0), align=None)
    revolve(axis=Axis((-22.5, 9.319805153, 15), (0, 0, -1)), revolution_arc=45, mode=Mode.SUBTRACT)
    with BuildSketch(Plane(origin=(22.5, 9.319805153, 15), x_dir=(0.7071067811865458, 0.7071067811865493, 0), z_dir=(-0.7071067811865493, 0.7071067811865458, 0))) as chamfer1_2_piece_15:
        Polygon((1 - CHAMFER1_SIZE_2, 0), (1, CHAMFER1_SIZE_2), (1, 0), align=None)
    revolve(axis=Axis((22.5, 9.319805153, 15), (0, 0, -1)), revolution_arc=45, mode=Mode.SUBTRACT)
    with BuildSketch(Plane(origin=(22.5, 1, 15), x_dir=(1, 0, 0), z_dir=(0, 1, 0))) as chamfer1_2_piece_16:
        Polygon((1 - CHAMFER1_SIZE_2, 0), (1, CHAMFER1_SIZE_2), (1, 0), align=None)
    revolve(axis=Axis((22.5, 1, 15), (0, 0, -1)), revolution_arc=90, mode=Mode.SUBTRACT)
    with BuildSketch(Plane(origin=(0, 0, 15), x_dir=(-0.7071067811865478, 0.7071067811865472, 0), z_dir=(-0.7071067811865472, -0.7071067811865478, 0))) as chamfer1_2_piece_17:
        Polygon((23.5 - CHAMFER1_SIZE_2, 0), (23.5, CHAMFER1_SIZE_2), (23.5, 0), align=None)
    revolve(axis=Axis((0, 0, 15), (0, 0, -1)), revolution_arc=90, mode=Mode.SUBTRACT)
    with BuildSketch(Plane(origin=(22.5, 0, 0), x_dir=(0, 1, 0), z_dir=(-1, 0, 0))) as chamfer1_2_piece_18:
        Polygon((CHAMFER1_SIZE_2, 0), (0, -CHAMFER1_SIZE_2), (0, 0), align=None)
    extrude(amount=10.571682988, mode=Mode.SUBTRACT)


solid = part.part
